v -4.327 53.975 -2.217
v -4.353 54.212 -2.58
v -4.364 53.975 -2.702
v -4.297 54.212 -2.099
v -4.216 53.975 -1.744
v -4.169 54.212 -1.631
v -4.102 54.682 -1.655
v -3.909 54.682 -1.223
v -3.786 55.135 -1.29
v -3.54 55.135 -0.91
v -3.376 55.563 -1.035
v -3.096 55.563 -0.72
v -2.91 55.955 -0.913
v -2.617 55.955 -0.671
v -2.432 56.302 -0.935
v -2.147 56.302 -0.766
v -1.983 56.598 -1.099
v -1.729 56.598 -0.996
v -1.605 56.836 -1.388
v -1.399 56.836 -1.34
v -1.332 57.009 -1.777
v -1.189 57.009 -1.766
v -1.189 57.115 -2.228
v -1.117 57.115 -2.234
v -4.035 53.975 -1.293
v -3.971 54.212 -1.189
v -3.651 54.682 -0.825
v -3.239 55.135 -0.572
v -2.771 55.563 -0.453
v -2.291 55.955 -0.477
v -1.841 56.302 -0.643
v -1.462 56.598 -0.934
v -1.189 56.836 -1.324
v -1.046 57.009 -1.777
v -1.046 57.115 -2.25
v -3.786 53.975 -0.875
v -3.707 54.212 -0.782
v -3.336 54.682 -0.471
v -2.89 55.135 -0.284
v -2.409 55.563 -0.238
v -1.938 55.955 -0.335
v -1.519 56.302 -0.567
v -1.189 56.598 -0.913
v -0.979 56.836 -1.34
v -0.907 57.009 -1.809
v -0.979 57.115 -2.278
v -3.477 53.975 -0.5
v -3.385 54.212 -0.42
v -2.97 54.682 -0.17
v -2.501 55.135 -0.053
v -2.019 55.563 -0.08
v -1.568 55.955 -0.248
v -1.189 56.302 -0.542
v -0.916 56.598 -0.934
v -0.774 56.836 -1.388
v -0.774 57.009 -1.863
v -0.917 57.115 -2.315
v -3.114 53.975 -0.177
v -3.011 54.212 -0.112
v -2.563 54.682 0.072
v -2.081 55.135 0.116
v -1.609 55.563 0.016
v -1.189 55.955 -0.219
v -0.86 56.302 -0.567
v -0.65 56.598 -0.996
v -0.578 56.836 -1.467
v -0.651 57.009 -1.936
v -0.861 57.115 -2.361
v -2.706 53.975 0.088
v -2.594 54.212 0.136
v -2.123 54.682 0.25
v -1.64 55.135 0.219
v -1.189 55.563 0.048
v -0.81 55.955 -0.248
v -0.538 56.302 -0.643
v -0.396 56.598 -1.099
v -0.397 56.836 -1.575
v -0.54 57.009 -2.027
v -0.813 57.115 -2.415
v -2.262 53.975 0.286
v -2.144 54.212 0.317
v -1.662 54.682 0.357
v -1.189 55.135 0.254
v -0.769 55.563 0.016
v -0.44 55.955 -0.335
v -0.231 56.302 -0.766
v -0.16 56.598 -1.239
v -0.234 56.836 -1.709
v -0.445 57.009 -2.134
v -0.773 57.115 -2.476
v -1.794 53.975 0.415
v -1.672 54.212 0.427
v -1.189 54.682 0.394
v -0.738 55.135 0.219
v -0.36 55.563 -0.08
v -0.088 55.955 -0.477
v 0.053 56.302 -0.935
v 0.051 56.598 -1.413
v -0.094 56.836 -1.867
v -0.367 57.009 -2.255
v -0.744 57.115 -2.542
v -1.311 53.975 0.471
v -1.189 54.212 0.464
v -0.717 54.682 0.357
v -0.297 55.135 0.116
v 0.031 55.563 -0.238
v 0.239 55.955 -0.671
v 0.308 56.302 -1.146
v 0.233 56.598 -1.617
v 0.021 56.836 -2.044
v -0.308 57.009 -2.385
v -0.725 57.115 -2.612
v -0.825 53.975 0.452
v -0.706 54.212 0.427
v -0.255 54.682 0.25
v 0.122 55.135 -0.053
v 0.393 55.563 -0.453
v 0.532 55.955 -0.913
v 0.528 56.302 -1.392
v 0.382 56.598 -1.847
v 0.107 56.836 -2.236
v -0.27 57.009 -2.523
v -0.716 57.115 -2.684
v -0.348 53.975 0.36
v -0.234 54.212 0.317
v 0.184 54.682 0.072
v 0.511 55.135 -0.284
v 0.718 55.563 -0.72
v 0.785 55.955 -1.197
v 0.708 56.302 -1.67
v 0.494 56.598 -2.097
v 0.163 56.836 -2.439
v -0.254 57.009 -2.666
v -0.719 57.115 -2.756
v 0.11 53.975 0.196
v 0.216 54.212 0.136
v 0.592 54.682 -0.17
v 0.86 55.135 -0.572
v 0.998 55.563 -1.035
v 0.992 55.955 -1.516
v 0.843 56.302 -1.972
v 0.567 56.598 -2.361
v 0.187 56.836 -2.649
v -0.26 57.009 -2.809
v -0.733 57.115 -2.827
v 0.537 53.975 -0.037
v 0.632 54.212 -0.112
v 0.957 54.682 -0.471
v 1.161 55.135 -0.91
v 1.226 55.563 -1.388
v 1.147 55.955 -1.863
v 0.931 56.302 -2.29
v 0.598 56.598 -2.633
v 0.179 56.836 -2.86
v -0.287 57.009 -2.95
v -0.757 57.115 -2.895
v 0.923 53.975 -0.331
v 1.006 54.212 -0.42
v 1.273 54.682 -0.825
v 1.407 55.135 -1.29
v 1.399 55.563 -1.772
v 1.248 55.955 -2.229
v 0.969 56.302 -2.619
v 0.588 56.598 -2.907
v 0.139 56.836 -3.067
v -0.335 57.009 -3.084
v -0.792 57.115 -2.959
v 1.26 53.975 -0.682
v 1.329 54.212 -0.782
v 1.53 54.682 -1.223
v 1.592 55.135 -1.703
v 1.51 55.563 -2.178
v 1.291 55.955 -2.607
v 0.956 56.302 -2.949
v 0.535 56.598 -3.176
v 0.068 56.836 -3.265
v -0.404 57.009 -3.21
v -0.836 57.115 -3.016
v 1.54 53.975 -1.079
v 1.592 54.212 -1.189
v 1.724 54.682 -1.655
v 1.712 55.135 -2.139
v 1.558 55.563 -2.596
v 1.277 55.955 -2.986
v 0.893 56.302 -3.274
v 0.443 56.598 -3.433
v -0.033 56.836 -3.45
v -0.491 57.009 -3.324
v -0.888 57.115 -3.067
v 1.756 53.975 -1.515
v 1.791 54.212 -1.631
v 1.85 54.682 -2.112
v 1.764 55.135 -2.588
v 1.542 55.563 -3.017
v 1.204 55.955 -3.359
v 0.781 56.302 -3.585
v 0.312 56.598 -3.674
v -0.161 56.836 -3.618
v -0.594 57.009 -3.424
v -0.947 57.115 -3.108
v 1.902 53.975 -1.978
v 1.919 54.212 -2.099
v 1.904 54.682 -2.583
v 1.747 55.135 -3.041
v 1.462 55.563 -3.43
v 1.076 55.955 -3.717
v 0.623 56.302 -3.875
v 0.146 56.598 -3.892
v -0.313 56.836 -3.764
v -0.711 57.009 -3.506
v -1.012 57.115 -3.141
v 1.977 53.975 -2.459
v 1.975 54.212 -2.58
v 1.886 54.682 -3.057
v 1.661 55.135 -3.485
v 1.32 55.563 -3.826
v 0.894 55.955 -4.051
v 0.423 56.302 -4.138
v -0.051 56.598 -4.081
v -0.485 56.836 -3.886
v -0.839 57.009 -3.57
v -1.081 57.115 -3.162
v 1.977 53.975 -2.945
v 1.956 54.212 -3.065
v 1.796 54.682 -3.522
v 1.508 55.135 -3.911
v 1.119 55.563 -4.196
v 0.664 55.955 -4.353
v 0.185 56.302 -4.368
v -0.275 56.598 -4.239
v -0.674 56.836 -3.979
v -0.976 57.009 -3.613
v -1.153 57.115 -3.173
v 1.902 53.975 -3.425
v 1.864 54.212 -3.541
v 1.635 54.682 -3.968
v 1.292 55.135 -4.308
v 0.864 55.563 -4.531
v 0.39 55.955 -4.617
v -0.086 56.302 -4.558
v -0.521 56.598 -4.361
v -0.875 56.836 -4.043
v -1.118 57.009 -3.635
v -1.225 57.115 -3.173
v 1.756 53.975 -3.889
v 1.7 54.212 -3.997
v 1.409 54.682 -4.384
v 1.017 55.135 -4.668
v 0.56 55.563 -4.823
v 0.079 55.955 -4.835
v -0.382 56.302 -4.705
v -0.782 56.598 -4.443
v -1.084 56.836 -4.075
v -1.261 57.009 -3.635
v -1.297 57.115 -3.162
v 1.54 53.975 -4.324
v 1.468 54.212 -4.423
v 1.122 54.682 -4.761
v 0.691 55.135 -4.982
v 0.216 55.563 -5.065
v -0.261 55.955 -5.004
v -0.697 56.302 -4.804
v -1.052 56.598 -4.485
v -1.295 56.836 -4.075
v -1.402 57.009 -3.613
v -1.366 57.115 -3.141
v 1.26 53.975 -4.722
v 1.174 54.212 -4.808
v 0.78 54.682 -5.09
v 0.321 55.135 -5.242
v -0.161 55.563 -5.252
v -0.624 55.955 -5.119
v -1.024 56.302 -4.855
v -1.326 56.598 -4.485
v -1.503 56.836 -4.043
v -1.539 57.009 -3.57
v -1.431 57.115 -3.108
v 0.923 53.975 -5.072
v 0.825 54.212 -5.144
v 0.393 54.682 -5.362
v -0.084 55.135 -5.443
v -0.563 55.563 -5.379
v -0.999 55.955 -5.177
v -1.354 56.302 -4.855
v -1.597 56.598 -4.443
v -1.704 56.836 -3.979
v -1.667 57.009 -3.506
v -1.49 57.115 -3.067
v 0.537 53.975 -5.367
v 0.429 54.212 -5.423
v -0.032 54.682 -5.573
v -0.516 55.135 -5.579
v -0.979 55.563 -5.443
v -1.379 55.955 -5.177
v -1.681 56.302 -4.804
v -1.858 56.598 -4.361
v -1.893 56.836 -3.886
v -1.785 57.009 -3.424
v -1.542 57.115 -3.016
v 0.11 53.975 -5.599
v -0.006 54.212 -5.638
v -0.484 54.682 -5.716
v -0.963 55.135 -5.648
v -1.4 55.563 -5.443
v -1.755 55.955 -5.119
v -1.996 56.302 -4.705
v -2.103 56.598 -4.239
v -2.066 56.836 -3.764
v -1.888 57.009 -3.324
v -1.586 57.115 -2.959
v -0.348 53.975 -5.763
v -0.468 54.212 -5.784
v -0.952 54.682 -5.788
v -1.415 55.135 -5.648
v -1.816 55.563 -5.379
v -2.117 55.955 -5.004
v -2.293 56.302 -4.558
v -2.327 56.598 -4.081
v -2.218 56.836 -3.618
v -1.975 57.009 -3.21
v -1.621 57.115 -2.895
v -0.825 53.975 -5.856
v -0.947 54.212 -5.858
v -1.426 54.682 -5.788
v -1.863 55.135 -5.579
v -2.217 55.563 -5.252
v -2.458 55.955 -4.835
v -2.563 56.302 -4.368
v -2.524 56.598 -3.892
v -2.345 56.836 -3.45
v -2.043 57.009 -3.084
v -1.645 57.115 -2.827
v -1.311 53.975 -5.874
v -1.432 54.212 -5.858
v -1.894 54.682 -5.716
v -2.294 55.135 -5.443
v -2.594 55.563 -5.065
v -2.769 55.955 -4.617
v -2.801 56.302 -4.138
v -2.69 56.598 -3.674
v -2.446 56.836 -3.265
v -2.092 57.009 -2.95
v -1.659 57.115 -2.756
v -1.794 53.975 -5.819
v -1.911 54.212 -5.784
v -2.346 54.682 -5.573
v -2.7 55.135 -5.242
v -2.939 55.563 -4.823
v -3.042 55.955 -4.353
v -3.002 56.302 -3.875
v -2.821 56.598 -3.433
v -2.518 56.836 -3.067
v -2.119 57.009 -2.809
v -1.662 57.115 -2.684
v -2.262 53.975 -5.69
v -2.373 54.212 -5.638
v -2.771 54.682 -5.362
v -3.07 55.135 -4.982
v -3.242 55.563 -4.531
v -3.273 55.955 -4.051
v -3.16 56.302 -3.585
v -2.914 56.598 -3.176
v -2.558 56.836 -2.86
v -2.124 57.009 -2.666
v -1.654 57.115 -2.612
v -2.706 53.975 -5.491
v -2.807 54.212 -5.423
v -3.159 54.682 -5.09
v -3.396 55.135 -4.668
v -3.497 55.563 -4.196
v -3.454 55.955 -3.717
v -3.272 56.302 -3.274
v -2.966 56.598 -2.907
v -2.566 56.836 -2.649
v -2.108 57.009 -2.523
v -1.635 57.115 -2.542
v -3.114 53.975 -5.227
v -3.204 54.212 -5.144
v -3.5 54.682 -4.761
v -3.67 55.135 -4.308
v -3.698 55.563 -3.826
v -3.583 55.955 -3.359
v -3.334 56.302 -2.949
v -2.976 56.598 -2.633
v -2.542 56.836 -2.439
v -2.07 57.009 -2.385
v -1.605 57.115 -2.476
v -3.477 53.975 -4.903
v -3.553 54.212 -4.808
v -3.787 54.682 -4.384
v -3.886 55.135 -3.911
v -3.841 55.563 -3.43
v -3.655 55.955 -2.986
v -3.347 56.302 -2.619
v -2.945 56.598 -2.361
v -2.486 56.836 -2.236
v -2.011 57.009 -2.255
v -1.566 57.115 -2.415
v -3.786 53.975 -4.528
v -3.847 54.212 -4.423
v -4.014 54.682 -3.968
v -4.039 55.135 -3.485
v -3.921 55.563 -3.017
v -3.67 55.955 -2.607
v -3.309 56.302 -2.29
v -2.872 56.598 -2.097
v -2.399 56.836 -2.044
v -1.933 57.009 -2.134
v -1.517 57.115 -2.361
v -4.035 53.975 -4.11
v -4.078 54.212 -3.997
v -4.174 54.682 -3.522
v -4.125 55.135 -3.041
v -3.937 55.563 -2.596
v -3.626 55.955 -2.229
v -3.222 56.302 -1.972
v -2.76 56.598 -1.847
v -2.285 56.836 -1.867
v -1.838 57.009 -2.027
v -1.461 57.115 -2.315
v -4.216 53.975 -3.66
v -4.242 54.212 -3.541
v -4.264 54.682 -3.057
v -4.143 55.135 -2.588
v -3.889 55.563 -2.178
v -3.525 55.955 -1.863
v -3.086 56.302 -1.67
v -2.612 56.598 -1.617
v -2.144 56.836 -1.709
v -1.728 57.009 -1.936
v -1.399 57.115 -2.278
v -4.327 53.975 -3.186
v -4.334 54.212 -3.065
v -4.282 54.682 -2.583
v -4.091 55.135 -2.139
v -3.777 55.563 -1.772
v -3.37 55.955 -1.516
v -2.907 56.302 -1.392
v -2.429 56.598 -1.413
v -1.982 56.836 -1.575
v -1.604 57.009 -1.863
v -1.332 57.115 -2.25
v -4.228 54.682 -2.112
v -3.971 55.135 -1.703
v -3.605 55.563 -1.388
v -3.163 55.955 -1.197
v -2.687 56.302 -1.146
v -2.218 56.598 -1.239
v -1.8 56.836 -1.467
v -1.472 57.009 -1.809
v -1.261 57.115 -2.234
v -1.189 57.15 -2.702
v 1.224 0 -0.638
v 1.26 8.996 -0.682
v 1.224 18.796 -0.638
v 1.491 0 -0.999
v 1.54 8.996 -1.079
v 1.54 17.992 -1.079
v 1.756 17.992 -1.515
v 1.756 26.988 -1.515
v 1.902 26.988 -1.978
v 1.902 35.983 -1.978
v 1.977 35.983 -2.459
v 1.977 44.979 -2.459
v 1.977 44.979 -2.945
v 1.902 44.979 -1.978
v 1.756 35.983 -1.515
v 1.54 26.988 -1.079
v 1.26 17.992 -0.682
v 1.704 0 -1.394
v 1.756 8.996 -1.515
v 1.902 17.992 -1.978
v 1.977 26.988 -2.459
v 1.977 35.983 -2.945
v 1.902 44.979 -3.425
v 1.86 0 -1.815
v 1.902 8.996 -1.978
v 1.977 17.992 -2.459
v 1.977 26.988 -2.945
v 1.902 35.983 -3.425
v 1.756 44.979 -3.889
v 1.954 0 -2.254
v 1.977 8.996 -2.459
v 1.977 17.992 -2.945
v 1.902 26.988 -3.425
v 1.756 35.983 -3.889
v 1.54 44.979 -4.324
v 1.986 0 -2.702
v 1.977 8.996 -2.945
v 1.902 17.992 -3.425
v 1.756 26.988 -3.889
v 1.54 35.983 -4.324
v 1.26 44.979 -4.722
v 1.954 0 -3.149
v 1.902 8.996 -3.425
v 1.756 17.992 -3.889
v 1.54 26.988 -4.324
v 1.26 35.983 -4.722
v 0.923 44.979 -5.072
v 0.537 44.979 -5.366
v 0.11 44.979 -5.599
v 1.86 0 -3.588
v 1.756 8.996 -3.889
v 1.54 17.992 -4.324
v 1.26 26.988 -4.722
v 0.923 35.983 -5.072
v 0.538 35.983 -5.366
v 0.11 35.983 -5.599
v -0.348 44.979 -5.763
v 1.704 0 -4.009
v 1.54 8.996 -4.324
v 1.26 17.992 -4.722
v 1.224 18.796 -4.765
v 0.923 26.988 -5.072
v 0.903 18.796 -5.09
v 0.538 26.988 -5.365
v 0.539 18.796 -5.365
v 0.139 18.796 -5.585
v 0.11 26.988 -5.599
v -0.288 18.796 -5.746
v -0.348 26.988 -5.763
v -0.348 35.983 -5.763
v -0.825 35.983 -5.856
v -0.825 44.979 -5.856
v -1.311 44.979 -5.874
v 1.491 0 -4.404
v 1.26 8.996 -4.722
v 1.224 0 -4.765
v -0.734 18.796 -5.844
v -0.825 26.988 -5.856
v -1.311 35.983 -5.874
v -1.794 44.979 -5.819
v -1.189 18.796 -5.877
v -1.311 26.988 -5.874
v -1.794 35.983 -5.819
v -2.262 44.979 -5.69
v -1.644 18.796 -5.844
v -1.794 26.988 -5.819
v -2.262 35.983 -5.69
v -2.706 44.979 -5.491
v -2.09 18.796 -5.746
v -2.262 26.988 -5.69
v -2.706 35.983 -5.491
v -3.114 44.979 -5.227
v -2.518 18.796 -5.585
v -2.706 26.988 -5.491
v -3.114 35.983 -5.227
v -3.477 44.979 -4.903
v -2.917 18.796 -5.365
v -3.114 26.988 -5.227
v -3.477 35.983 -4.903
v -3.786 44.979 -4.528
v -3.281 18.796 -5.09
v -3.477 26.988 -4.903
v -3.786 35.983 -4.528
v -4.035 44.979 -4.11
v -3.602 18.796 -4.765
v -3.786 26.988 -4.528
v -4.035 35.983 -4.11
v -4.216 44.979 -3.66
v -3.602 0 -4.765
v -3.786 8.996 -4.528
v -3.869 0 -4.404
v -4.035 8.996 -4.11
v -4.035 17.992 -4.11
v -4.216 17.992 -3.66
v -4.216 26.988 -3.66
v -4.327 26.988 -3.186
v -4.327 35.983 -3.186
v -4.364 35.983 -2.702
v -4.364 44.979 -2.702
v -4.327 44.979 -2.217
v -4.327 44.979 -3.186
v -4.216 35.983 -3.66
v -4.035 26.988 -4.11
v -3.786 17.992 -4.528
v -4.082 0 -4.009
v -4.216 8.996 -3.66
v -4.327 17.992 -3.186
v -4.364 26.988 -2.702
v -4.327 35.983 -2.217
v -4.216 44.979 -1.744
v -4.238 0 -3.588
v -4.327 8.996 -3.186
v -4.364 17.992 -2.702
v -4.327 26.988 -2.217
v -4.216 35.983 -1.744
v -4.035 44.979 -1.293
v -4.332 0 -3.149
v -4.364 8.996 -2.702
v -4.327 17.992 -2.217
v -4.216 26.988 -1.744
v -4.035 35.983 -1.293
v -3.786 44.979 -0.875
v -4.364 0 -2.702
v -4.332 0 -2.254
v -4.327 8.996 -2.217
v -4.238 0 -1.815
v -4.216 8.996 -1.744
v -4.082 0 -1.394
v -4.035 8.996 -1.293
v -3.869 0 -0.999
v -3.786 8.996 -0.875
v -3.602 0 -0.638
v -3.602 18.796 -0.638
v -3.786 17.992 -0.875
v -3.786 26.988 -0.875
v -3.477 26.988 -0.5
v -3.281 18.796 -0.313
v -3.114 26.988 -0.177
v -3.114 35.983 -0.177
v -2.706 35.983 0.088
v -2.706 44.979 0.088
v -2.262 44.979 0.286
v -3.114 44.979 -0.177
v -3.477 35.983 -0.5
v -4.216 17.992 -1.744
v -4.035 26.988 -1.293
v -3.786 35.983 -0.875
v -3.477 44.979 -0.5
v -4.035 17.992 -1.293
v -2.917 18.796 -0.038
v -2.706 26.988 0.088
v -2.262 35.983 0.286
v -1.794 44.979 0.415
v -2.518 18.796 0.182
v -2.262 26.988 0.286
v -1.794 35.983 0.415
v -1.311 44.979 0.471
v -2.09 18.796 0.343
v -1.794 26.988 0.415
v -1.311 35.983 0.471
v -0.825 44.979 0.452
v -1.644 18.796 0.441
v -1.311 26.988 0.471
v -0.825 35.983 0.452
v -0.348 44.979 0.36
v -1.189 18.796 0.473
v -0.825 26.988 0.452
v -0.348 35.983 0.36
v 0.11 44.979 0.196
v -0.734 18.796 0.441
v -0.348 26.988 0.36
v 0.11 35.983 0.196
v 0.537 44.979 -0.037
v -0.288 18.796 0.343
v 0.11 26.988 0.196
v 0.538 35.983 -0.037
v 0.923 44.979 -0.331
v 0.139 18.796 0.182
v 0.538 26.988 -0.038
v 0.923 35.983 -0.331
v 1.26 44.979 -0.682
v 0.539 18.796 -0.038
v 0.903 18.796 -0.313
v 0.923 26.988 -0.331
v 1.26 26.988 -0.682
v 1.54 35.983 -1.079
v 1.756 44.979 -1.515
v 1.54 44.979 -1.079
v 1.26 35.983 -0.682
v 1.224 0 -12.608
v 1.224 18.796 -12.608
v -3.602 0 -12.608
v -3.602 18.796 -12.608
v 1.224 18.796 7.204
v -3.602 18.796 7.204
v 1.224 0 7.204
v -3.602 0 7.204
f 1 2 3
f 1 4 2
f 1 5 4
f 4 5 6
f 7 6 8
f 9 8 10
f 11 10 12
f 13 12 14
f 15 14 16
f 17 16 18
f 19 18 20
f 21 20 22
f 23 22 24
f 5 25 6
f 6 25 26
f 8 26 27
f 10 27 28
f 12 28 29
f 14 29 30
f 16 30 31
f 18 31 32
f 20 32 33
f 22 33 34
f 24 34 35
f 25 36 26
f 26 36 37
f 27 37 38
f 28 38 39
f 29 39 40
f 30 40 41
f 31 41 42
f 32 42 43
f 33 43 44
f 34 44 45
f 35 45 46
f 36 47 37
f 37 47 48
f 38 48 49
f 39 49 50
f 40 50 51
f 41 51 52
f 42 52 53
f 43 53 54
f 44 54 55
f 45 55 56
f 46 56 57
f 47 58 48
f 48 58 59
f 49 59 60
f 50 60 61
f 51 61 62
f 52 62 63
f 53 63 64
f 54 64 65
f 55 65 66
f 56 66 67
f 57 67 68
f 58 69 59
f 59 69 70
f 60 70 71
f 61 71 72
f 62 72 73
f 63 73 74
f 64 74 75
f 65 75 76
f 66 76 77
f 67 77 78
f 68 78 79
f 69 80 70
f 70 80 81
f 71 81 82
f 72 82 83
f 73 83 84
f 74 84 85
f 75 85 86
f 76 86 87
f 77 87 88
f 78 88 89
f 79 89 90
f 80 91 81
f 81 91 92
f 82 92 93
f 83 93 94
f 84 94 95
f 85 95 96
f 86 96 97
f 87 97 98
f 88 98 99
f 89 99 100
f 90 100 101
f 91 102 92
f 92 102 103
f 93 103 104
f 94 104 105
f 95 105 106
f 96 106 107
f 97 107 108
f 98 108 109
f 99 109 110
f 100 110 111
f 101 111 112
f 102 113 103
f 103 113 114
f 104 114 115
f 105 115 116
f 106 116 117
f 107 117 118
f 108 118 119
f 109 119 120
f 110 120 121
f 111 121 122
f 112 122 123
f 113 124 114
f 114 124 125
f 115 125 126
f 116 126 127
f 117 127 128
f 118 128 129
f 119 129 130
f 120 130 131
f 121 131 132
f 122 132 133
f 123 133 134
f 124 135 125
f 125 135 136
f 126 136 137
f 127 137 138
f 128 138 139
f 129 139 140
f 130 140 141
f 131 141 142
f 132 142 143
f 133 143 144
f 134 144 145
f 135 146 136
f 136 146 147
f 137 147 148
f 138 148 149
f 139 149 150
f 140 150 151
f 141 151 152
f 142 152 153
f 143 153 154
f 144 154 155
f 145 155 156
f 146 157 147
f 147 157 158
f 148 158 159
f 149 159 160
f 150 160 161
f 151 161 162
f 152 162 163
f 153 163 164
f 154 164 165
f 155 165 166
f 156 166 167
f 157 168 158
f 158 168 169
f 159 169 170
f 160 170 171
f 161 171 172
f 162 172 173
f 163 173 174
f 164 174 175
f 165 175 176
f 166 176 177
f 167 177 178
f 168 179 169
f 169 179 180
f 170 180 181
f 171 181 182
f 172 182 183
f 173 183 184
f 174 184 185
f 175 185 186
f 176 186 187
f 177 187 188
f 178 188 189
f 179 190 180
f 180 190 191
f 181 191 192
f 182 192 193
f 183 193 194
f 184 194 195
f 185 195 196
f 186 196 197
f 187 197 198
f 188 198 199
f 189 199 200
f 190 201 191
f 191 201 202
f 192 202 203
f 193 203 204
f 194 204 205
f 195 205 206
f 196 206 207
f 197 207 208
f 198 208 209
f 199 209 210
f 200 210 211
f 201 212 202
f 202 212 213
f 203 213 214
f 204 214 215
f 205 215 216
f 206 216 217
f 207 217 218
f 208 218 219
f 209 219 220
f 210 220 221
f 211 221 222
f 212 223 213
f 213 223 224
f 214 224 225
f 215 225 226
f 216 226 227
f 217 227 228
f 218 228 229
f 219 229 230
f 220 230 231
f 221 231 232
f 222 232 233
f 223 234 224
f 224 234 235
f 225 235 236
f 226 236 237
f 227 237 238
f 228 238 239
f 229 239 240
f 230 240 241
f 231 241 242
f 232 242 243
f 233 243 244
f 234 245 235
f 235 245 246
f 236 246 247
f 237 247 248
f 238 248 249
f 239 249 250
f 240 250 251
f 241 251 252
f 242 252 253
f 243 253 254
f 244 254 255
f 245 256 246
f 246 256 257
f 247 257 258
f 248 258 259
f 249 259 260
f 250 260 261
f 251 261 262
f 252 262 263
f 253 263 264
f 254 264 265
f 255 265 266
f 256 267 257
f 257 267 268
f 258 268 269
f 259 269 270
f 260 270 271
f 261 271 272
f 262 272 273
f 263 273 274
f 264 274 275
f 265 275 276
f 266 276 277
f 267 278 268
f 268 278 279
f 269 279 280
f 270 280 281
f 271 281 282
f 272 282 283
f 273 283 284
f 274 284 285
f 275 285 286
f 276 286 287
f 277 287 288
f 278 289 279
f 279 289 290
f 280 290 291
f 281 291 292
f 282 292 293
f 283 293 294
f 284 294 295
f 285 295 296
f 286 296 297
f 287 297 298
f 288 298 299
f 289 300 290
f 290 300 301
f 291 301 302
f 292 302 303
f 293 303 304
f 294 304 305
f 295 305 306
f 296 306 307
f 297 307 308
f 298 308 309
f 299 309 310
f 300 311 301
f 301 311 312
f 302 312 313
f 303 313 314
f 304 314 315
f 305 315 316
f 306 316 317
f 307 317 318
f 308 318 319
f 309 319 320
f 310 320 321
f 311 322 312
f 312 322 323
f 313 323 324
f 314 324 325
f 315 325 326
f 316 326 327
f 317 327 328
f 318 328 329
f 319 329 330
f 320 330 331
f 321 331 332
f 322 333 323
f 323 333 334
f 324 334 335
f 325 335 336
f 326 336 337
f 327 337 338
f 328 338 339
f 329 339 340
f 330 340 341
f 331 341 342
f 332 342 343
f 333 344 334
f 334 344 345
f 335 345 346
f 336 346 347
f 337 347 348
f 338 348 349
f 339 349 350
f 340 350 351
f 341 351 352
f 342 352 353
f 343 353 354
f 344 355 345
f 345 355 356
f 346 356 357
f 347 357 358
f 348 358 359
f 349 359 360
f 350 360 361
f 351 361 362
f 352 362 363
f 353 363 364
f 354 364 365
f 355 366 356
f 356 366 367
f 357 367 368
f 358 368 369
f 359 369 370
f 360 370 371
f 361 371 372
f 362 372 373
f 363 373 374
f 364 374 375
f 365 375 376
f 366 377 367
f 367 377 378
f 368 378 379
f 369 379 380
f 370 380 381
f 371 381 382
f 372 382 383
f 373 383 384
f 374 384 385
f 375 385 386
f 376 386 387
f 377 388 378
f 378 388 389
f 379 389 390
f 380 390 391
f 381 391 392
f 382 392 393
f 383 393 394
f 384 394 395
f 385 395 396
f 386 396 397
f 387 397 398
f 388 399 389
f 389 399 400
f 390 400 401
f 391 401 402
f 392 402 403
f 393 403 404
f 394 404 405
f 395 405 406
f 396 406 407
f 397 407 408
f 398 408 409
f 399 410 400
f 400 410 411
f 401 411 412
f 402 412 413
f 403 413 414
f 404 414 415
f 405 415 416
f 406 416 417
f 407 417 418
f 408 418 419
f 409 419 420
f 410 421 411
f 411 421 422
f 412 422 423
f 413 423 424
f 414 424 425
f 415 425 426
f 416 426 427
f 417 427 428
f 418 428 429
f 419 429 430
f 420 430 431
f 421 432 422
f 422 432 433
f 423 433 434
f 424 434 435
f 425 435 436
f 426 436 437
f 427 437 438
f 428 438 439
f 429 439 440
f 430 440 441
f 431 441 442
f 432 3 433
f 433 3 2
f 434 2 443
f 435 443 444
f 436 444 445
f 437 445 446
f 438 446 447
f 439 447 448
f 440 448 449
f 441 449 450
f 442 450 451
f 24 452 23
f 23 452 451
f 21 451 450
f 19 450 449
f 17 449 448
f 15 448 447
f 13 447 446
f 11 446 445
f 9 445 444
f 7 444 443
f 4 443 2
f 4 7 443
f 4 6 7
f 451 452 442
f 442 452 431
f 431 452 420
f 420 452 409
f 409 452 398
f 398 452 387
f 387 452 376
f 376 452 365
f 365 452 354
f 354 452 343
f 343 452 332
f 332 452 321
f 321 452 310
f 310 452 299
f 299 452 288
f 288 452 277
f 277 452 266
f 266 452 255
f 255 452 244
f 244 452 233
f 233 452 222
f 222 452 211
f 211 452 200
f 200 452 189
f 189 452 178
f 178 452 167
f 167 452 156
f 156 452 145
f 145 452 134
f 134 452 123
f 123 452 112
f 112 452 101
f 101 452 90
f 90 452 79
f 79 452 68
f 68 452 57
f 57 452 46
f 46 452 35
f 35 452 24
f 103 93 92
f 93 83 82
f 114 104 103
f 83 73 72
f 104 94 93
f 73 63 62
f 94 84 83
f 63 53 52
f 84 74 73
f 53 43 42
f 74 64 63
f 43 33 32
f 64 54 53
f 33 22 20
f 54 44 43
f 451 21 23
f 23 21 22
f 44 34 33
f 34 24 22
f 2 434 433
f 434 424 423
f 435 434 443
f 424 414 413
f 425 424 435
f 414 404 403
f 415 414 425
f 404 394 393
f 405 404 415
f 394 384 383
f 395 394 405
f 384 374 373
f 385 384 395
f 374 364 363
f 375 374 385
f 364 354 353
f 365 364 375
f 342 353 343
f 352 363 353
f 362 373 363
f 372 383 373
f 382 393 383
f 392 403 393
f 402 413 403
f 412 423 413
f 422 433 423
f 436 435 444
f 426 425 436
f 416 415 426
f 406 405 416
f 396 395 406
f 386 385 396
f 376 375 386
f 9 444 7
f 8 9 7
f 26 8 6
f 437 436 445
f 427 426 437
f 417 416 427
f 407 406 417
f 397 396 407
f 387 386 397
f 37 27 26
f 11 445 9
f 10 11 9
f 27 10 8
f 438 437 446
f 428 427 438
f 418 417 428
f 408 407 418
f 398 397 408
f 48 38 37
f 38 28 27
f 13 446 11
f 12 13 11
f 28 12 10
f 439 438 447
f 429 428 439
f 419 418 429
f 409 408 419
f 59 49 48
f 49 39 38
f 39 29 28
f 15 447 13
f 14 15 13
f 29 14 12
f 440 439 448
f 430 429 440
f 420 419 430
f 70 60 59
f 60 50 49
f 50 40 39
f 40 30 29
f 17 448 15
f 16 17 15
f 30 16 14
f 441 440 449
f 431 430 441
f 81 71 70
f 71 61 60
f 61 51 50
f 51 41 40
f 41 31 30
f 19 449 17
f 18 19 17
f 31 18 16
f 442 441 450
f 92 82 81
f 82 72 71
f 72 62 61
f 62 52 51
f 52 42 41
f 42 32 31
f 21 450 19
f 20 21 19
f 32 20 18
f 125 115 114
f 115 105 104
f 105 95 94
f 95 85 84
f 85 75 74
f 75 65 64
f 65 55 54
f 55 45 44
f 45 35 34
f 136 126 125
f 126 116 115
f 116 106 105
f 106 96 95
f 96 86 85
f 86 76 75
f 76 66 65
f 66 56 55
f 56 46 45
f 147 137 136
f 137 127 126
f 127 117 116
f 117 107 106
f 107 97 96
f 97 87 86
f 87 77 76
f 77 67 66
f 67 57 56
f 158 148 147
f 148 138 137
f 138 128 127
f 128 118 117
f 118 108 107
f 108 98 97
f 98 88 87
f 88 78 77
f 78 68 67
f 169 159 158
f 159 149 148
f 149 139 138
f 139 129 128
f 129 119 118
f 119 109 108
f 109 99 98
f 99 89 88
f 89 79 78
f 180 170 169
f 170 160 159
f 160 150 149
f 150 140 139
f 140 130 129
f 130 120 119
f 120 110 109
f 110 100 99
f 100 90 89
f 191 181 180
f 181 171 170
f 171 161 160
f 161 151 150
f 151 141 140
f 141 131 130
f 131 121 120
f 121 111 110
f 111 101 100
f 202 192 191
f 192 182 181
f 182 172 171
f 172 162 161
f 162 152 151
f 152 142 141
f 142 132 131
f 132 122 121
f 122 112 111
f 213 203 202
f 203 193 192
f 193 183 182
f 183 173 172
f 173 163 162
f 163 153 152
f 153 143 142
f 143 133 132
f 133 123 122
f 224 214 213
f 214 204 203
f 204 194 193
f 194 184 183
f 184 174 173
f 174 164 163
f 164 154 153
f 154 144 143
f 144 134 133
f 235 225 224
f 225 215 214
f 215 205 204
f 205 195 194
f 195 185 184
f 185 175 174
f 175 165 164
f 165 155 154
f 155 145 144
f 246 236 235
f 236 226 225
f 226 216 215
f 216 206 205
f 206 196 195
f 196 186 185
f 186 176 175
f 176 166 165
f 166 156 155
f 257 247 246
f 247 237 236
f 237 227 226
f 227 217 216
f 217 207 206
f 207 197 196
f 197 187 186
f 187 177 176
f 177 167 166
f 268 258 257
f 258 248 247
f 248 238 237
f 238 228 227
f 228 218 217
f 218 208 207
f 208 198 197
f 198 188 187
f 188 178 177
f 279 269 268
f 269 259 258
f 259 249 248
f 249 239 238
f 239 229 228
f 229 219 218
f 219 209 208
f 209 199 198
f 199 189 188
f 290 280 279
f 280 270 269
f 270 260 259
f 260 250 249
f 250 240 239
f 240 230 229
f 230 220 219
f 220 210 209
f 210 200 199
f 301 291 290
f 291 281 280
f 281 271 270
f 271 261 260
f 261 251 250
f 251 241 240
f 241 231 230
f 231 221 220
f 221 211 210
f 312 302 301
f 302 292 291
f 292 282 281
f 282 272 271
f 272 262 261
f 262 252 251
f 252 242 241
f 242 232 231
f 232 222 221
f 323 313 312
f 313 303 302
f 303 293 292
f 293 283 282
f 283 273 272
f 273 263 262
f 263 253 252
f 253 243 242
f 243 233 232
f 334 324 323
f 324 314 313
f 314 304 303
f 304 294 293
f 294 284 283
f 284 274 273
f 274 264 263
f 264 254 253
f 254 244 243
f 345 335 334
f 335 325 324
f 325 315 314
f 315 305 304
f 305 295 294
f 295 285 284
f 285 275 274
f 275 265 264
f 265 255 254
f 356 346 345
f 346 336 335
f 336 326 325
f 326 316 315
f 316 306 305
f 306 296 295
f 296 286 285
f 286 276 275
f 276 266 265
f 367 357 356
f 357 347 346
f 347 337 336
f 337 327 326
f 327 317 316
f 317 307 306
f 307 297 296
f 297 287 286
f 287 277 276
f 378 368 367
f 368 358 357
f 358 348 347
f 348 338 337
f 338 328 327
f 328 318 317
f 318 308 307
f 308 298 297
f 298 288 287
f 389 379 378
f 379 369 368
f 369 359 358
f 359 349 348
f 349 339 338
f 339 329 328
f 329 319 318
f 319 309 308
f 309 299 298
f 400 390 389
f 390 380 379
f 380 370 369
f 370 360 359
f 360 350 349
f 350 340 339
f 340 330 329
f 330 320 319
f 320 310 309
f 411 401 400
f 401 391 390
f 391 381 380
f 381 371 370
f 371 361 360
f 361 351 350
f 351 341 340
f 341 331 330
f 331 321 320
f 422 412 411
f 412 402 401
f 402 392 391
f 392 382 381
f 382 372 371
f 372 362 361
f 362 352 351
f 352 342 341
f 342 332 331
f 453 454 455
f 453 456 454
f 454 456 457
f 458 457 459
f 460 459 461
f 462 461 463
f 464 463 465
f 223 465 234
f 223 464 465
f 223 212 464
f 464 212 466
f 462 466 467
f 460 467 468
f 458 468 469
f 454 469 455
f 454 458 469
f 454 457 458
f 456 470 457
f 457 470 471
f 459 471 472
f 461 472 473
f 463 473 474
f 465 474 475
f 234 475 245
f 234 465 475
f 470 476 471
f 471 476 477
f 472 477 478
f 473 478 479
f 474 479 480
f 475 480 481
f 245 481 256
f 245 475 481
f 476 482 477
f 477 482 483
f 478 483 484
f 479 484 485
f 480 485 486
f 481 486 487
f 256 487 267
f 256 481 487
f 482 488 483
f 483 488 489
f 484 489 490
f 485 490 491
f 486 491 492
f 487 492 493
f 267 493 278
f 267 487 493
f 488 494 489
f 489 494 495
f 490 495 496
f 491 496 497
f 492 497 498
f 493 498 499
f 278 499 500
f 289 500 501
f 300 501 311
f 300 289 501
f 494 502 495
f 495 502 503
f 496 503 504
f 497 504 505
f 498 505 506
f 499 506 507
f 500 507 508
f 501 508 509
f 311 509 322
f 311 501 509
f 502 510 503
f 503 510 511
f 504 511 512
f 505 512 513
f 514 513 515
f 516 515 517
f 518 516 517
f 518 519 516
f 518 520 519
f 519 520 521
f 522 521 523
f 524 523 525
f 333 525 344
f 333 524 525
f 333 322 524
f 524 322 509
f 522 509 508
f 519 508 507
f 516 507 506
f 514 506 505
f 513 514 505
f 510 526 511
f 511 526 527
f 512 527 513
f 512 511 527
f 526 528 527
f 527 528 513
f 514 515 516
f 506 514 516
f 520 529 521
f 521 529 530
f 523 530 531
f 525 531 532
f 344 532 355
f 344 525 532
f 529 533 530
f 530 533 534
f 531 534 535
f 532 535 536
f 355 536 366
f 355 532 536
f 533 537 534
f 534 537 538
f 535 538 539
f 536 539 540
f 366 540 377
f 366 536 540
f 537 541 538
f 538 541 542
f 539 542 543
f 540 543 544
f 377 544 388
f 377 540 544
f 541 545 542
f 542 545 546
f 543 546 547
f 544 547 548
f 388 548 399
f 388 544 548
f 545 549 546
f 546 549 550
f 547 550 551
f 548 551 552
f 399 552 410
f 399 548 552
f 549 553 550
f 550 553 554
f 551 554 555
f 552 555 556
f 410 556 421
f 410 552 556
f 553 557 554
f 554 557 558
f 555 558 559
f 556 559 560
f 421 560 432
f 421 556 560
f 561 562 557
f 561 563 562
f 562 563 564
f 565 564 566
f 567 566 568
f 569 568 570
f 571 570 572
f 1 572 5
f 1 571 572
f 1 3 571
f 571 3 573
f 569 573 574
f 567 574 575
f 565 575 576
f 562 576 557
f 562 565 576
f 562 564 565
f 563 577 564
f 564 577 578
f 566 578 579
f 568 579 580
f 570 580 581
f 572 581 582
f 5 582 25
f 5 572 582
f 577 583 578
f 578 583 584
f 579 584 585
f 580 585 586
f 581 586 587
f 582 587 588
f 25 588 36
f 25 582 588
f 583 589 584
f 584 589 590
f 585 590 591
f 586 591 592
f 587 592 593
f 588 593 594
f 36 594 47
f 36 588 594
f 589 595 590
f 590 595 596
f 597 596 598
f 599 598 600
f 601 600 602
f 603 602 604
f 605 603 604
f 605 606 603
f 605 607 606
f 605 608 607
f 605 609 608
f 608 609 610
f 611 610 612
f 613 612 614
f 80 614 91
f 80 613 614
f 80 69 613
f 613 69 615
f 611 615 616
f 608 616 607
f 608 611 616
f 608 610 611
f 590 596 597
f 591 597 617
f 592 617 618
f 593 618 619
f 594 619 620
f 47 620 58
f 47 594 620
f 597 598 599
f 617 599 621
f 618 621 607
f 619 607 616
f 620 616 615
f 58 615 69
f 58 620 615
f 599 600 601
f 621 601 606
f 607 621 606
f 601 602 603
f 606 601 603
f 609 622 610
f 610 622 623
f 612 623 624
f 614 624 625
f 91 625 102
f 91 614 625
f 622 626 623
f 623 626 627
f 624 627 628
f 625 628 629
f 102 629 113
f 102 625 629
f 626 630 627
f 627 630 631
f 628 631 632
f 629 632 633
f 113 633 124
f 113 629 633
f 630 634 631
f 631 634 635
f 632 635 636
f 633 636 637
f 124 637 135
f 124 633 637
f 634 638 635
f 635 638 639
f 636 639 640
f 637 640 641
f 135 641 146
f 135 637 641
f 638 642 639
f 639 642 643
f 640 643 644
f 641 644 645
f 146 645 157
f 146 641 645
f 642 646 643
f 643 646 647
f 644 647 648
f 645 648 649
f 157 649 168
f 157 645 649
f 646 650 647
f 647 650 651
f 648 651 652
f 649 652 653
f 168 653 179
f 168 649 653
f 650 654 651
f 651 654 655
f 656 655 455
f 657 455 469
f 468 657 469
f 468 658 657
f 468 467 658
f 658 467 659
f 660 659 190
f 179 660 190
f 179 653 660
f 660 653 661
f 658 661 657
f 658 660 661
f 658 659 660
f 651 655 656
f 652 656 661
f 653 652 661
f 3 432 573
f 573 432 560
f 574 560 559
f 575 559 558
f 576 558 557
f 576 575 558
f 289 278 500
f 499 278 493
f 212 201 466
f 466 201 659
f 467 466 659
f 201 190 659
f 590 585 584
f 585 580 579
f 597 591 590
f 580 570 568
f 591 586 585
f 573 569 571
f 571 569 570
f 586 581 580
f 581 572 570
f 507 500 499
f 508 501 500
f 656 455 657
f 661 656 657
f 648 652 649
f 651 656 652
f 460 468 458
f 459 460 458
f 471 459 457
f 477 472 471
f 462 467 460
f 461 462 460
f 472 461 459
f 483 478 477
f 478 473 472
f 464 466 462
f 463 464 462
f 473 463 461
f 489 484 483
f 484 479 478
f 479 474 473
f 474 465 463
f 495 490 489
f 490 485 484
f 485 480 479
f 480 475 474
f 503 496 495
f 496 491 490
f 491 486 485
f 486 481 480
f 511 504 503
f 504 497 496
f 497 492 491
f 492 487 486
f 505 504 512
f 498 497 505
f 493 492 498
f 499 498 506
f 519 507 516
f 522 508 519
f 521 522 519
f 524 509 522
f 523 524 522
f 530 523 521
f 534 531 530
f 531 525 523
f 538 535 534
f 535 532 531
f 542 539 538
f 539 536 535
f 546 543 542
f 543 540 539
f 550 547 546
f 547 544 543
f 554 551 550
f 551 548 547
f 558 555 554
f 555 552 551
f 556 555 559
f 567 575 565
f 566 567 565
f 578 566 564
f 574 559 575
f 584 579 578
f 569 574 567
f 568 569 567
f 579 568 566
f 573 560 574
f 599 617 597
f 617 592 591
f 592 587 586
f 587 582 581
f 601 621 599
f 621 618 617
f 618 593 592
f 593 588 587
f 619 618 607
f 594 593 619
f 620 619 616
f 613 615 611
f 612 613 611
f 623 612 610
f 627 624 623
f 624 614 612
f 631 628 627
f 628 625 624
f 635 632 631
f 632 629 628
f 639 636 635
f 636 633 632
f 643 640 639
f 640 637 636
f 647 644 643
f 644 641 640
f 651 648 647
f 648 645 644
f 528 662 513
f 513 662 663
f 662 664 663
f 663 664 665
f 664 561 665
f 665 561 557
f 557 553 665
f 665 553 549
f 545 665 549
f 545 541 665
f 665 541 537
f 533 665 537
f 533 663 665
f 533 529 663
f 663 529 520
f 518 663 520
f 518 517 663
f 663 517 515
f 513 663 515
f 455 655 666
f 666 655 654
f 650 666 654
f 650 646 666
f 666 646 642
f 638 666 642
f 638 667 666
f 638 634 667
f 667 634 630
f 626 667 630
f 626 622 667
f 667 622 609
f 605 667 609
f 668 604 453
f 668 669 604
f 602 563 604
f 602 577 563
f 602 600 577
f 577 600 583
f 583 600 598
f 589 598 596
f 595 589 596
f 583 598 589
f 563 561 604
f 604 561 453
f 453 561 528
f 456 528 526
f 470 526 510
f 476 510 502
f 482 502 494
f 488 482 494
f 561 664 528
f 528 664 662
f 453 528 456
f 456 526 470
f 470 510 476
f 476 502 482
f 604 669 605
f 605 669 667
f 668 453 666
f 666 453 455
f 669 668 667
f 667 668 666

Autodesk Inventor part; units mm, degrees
ref_plane "YZ Plane" through (0, 0, 0) normal (1, 0, 0) x (0, 1, 0)
ref_plane "XZ Plane" through (0, 0, 0) normal (0, 1, 0) x (-1, 0, 0)
ref_plane "XY Plane" through (0, 0, 0) normal (0, 0, 1) x (1, 0, 0)
sketch "Sketch1" plane through (0, 0, 0) normal (0, 1, 0) x (-1, 0, 0)
  line L0 (-1.2238, 7.2044) -> (3.6022, 7.2044)
  line L1 (3.6022, -12.6076) -> (-1.2238, -12.6076)
  line L2 (3.6022, 7.2044) -> (3.6022, -0.6381)
  line L3 (3.6022, -4.7651) -> (3.6022, -12.6076)
  line L4 (-1.2238, -12.6076) -> (-1.2238, -4.7651)
  line L5 (-1.2238, -0.6381) -> (-1.2238, 7.2044)
  arc A0 (-1.2238, -0.6381) -> (-1.2238, -4.7651) centre (1.1892, -2.7016) ccw
  arc A1 (3.6022, -4.7651) -> (3.6022, -0.6381) centre (1.1892, -2.7016) ccw
  circle A2 centre (1.1892, -2.7016) radius 3.175
  point P0 (0, 0)
  dimension "d0" = 19.812
  dimension "d1" = 4.826
  dimension "d3" = 9.906
extrude "Extrusion1" add sketch "Sketch1" along normal blind 18.796 contours L0 L2 A2 L5 | A2 L3 L1 L4
extrude "Extrusion2" add sketch "Sketch1" along normal blind 57.15 contours A2 A1 A0
fillet "Fillet1" radius 3.175 1 edges at (1.9858, 57.15, -2.7016)
properties part number "Dreidel Pole"
